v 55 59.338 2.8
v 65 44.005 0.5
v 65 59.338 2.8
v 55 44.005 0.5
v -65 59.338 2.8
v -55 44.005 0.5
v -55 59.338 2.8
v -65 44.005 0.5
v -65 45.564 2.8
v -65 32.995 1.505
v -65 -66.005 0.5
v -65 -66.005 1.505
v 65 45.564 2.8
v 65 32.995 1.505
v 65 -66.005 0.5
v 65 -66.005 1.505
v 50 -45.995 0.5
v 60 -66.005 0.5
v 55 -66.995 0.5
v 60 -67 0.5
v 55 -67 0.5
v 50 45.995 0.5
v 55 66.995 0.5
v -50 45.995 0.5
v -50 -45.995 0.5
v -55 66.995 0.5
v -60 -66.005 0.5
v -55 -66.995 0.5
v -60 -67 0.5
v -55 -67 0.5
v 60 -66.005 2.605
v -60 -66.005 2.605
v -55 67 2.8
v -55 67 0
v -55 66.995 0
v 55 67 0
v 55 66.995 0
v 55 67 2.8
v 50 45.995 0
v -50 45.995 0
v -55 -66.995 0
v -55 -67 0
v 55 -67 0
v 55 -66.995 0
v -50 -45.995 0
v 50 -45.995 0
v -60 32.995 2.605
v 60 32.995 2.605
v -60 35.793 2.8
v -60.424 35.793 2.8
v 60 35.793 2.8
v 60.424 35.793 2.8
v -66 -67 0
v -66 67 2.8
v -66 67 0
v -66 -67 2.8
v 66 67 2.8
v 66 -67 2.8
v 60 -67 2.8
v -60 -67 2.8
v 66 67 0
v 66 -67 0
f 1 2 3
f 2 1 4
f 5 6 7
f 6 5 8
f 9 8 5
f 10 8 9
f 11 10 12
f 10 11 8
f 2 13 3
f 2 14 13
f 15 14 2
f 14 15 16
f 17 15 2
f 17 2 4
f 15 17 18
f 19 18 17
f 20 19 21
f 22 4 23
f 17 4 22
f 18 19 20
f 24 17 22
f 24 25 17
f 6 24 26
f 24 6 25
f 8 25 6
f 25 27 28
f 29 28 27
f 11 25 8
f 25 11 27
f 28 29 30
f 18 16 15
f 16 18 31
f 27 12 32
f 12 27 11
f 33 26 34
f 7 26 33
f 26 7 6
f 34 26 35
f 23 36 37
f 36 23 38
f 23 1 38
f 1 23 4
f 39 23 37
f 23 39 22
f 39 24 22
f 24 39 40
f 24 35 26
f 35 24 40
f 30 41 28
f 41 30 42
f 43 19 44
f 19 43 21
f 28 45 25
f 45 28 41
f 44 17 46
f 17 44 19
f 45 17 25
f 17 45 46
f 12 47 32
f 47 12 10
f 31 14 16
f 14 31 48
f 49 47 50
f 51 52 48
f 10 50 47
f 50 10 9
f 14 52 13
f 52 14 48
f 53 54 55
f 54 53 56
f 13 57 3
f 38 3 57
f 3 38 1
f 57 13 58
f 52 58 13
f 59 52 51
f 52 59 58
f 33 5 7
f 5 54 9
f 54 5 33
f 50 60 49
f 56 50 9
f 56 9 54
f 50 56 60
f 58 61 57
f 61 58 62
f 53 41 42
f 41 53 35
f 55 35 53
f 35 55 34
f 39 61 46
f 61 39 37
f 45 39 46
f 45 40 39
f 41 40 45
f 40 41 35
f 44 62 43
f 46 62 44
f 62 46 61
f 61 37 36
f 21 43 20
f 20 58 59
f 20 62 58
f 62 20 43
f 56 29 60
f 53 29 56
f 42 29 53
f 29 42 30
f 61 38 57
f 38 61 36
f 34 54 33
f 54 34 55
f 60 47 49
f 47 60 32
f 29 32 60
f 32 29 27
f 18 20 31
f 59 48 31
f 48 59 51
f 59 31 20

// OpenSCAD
// Wall Mounted Single Card Holder For 13cm square photos for gameboy gallery (Derived from business card wall mount source)
// By Brian Khuu 2022-04-10
// Note: Adjusted to have enough space for command strips (2cmm on each side)

print_layer_height = 0.2;

// Businesscard
// Default values based on https://www.mbe.com.au/what-is-the-standard-business-card-size-in-australia/
businesscard_width = 130; // 127mm plus some tolerance (+3 tolerance)
businesscard_height = 127 + 5; // 127mm (+5 for clearer indication that it's frame?)
businesscard_thickness = 1.0;

// Holder
wall_spacing = 2;
wall_card_grip = 10;
wall_x_count = 1; //2
wall_y_count = 1; //3

fingerGrip = 20;

// Calc
wall_base = print_layer_height*2+0.1;
wall_top = print_layer_height*6+0.1;
wall_height = wall_base + businesscard_thickness + wall_top;

translate([0,-3,0.5])%cube([130,127,0.01], center=true);

module cardholder(reducePlastic=false)
{
    if (0)
    translate([0,0,wall_base+businesscard_thickness])
        rotate([2,0,0])
        %cube([130, 130, 0.1], center = true);

    difference()
    {
        translate([0,0,wall_height/2])
            cube([businesscard_width+wall_spacing, businesscard_height+wall_spacing, wall_height], center = true);

        // Card Slide
        translate([0,0,wall_base])
        translate([0,0,businesscard_thickness/2])
        {
            // Upper
            hull()
            {
                translate([0,businesscard_height/2,businesscard_thickness*3 + wall_top])
                    cube([businesscard_width, 0.01, businesscard_thickness*3], center = true);
                translate([0,businesscard_height/3,0])
                    cube([businesscard_width, 0.01, businesscard_thickness], center = true);
            }
            // Lower
            hull()
            {
                translate([0,businesscard_height/3,0])
                    cube([businesscard_width, 0.01, businesscard_thickness], center = true);
                translate([0,-businesscard_height/2,0])
                    cube([businesscard_width, 0.01, businesscard_thickness], center = true);
            }
        }

        // Grip
        if (1)
        translate([0,0,wall_height/2-0.01])
            union()
            {
                hull()
                {
                    translate([0,businesscard_height/2+1,0])
                    cube([businesscard_width-wall_card_grip*2, 0.01, wall_height], center = true);

                    translate([0,businesscard_height/2-fingerGrip,0])
                    cube([businesscard_width-wall_card_grip*3, 0.01, wall_height], center = true);
                }
                hull()
                {
                    translate([0,-businesscard_height/2-1,0])
                    cube([businesscard_width-wall_card_grip*2, 0.01, wall_height], center = true);

                    translate([0,-businesscard_height/2+fingerGrip,0])
                    cube([businesscard_width-wall_card_grip*3, 0.01, wall_height], center = true);
                }
            }
        translate([0,0,wall_height/2+wall_base])
            hull()
            {
                translate([0,businesscard_height,0])
                cube([businesscard_width-wall_card_grip*2, 0.01, wall_height], center = true);

                translate([0,businesscard_height/3,0])
                cube([businesscard_width-wall_card_grip*2, 0.01, wall_height], center = true);
            }
        translate([0,0,wall_height/2+wall_base])
            hull()
            {
                translate([0,businesscard_height/3,0])
                cube([businesscard_width-wall_card_grip, 0.01, wall_height], center = true);
                translate([0,-businesscard_height,0])
                cube([businesscard_width-wall_card_grip, 0.01, wall_height], center = true);
            }

        // Reduce Plastic
        if (reducePlastic)
        translate([0,0,wall_base+businesscard_thickness/2+0.5])
        {
            //cube([businesscard_width-40,businesscard_height-30, wall_height+1], center=true);
            cube([businesscard_width-40,businesscard_height-40, wall_height+1], center=true);
        }
        
        
        // Slope
        translate([0,0,wall_base+businesscard_thickness])
        union()
        {
            // Lower
            hull()
            {
                translate([0,0,wall_top-print_layer_height])
                    hull()
                    {
                        translate([0,businesscard_height/4,0])
                            cube([businesscard_width-wall_card_grip, 0.01, 0.01], center = true);
                        translate([0,-businesscard_height/2,0])
                            cube([businesscard_width-wall_card_grip, 0.01, 0.01], center = true);
                    }
                hull()
                {
                    translate([0,businesscard_height/4,0])
                        cube([businesscard_width, 0.01, 0.01], center = true);
                    translate([0,-businesscard_height/2,0])
                        cube([businesscard_width, 0.01, 0.01], center = true);
                }
            }
            
            // Upper
            hull()
            {
                translate([0,0,wall_top-print_layer_height])
                hull()
                {
                    translate([0,businesscard_height/2,businesscard_thickness + wall_top])
                        cube([businesscard_width, 0.01, 0.01], center = true);
                    translate([0,businesscard_height/4,0])
                        cube([businesscard_width-wall_card_grip, 0.01, 0.01], center = true);
                }
                hull()
                {
                    translate([0,businesscard_height/2,businesscard_thickness + wall_top])
                        cube([businesscard_width, 0.01, 0.01], center = true);
                    translate([0,businesscard_height/3,0])
                        cube([businesscard_width, 0.01, 0.01], center = true);
                    translate([0,businesscard_height/4,0])
                        cube([businesscard_width, 0.01, 0.01], center = true);
                }
            }
        }
    }
}

if (wall_x_count == 1 && wall_y_count == 1)
{
    cardholder(false);
}
else
{
    for (x = [1: 1 : wall_x_count])
        for (y = [1 : 1 : wall_y_count])
           translate([x*(businesscard_width+wall_spacing), y*(businesscard_height+wall_spacing), 0])
                cardholder(false);
}
